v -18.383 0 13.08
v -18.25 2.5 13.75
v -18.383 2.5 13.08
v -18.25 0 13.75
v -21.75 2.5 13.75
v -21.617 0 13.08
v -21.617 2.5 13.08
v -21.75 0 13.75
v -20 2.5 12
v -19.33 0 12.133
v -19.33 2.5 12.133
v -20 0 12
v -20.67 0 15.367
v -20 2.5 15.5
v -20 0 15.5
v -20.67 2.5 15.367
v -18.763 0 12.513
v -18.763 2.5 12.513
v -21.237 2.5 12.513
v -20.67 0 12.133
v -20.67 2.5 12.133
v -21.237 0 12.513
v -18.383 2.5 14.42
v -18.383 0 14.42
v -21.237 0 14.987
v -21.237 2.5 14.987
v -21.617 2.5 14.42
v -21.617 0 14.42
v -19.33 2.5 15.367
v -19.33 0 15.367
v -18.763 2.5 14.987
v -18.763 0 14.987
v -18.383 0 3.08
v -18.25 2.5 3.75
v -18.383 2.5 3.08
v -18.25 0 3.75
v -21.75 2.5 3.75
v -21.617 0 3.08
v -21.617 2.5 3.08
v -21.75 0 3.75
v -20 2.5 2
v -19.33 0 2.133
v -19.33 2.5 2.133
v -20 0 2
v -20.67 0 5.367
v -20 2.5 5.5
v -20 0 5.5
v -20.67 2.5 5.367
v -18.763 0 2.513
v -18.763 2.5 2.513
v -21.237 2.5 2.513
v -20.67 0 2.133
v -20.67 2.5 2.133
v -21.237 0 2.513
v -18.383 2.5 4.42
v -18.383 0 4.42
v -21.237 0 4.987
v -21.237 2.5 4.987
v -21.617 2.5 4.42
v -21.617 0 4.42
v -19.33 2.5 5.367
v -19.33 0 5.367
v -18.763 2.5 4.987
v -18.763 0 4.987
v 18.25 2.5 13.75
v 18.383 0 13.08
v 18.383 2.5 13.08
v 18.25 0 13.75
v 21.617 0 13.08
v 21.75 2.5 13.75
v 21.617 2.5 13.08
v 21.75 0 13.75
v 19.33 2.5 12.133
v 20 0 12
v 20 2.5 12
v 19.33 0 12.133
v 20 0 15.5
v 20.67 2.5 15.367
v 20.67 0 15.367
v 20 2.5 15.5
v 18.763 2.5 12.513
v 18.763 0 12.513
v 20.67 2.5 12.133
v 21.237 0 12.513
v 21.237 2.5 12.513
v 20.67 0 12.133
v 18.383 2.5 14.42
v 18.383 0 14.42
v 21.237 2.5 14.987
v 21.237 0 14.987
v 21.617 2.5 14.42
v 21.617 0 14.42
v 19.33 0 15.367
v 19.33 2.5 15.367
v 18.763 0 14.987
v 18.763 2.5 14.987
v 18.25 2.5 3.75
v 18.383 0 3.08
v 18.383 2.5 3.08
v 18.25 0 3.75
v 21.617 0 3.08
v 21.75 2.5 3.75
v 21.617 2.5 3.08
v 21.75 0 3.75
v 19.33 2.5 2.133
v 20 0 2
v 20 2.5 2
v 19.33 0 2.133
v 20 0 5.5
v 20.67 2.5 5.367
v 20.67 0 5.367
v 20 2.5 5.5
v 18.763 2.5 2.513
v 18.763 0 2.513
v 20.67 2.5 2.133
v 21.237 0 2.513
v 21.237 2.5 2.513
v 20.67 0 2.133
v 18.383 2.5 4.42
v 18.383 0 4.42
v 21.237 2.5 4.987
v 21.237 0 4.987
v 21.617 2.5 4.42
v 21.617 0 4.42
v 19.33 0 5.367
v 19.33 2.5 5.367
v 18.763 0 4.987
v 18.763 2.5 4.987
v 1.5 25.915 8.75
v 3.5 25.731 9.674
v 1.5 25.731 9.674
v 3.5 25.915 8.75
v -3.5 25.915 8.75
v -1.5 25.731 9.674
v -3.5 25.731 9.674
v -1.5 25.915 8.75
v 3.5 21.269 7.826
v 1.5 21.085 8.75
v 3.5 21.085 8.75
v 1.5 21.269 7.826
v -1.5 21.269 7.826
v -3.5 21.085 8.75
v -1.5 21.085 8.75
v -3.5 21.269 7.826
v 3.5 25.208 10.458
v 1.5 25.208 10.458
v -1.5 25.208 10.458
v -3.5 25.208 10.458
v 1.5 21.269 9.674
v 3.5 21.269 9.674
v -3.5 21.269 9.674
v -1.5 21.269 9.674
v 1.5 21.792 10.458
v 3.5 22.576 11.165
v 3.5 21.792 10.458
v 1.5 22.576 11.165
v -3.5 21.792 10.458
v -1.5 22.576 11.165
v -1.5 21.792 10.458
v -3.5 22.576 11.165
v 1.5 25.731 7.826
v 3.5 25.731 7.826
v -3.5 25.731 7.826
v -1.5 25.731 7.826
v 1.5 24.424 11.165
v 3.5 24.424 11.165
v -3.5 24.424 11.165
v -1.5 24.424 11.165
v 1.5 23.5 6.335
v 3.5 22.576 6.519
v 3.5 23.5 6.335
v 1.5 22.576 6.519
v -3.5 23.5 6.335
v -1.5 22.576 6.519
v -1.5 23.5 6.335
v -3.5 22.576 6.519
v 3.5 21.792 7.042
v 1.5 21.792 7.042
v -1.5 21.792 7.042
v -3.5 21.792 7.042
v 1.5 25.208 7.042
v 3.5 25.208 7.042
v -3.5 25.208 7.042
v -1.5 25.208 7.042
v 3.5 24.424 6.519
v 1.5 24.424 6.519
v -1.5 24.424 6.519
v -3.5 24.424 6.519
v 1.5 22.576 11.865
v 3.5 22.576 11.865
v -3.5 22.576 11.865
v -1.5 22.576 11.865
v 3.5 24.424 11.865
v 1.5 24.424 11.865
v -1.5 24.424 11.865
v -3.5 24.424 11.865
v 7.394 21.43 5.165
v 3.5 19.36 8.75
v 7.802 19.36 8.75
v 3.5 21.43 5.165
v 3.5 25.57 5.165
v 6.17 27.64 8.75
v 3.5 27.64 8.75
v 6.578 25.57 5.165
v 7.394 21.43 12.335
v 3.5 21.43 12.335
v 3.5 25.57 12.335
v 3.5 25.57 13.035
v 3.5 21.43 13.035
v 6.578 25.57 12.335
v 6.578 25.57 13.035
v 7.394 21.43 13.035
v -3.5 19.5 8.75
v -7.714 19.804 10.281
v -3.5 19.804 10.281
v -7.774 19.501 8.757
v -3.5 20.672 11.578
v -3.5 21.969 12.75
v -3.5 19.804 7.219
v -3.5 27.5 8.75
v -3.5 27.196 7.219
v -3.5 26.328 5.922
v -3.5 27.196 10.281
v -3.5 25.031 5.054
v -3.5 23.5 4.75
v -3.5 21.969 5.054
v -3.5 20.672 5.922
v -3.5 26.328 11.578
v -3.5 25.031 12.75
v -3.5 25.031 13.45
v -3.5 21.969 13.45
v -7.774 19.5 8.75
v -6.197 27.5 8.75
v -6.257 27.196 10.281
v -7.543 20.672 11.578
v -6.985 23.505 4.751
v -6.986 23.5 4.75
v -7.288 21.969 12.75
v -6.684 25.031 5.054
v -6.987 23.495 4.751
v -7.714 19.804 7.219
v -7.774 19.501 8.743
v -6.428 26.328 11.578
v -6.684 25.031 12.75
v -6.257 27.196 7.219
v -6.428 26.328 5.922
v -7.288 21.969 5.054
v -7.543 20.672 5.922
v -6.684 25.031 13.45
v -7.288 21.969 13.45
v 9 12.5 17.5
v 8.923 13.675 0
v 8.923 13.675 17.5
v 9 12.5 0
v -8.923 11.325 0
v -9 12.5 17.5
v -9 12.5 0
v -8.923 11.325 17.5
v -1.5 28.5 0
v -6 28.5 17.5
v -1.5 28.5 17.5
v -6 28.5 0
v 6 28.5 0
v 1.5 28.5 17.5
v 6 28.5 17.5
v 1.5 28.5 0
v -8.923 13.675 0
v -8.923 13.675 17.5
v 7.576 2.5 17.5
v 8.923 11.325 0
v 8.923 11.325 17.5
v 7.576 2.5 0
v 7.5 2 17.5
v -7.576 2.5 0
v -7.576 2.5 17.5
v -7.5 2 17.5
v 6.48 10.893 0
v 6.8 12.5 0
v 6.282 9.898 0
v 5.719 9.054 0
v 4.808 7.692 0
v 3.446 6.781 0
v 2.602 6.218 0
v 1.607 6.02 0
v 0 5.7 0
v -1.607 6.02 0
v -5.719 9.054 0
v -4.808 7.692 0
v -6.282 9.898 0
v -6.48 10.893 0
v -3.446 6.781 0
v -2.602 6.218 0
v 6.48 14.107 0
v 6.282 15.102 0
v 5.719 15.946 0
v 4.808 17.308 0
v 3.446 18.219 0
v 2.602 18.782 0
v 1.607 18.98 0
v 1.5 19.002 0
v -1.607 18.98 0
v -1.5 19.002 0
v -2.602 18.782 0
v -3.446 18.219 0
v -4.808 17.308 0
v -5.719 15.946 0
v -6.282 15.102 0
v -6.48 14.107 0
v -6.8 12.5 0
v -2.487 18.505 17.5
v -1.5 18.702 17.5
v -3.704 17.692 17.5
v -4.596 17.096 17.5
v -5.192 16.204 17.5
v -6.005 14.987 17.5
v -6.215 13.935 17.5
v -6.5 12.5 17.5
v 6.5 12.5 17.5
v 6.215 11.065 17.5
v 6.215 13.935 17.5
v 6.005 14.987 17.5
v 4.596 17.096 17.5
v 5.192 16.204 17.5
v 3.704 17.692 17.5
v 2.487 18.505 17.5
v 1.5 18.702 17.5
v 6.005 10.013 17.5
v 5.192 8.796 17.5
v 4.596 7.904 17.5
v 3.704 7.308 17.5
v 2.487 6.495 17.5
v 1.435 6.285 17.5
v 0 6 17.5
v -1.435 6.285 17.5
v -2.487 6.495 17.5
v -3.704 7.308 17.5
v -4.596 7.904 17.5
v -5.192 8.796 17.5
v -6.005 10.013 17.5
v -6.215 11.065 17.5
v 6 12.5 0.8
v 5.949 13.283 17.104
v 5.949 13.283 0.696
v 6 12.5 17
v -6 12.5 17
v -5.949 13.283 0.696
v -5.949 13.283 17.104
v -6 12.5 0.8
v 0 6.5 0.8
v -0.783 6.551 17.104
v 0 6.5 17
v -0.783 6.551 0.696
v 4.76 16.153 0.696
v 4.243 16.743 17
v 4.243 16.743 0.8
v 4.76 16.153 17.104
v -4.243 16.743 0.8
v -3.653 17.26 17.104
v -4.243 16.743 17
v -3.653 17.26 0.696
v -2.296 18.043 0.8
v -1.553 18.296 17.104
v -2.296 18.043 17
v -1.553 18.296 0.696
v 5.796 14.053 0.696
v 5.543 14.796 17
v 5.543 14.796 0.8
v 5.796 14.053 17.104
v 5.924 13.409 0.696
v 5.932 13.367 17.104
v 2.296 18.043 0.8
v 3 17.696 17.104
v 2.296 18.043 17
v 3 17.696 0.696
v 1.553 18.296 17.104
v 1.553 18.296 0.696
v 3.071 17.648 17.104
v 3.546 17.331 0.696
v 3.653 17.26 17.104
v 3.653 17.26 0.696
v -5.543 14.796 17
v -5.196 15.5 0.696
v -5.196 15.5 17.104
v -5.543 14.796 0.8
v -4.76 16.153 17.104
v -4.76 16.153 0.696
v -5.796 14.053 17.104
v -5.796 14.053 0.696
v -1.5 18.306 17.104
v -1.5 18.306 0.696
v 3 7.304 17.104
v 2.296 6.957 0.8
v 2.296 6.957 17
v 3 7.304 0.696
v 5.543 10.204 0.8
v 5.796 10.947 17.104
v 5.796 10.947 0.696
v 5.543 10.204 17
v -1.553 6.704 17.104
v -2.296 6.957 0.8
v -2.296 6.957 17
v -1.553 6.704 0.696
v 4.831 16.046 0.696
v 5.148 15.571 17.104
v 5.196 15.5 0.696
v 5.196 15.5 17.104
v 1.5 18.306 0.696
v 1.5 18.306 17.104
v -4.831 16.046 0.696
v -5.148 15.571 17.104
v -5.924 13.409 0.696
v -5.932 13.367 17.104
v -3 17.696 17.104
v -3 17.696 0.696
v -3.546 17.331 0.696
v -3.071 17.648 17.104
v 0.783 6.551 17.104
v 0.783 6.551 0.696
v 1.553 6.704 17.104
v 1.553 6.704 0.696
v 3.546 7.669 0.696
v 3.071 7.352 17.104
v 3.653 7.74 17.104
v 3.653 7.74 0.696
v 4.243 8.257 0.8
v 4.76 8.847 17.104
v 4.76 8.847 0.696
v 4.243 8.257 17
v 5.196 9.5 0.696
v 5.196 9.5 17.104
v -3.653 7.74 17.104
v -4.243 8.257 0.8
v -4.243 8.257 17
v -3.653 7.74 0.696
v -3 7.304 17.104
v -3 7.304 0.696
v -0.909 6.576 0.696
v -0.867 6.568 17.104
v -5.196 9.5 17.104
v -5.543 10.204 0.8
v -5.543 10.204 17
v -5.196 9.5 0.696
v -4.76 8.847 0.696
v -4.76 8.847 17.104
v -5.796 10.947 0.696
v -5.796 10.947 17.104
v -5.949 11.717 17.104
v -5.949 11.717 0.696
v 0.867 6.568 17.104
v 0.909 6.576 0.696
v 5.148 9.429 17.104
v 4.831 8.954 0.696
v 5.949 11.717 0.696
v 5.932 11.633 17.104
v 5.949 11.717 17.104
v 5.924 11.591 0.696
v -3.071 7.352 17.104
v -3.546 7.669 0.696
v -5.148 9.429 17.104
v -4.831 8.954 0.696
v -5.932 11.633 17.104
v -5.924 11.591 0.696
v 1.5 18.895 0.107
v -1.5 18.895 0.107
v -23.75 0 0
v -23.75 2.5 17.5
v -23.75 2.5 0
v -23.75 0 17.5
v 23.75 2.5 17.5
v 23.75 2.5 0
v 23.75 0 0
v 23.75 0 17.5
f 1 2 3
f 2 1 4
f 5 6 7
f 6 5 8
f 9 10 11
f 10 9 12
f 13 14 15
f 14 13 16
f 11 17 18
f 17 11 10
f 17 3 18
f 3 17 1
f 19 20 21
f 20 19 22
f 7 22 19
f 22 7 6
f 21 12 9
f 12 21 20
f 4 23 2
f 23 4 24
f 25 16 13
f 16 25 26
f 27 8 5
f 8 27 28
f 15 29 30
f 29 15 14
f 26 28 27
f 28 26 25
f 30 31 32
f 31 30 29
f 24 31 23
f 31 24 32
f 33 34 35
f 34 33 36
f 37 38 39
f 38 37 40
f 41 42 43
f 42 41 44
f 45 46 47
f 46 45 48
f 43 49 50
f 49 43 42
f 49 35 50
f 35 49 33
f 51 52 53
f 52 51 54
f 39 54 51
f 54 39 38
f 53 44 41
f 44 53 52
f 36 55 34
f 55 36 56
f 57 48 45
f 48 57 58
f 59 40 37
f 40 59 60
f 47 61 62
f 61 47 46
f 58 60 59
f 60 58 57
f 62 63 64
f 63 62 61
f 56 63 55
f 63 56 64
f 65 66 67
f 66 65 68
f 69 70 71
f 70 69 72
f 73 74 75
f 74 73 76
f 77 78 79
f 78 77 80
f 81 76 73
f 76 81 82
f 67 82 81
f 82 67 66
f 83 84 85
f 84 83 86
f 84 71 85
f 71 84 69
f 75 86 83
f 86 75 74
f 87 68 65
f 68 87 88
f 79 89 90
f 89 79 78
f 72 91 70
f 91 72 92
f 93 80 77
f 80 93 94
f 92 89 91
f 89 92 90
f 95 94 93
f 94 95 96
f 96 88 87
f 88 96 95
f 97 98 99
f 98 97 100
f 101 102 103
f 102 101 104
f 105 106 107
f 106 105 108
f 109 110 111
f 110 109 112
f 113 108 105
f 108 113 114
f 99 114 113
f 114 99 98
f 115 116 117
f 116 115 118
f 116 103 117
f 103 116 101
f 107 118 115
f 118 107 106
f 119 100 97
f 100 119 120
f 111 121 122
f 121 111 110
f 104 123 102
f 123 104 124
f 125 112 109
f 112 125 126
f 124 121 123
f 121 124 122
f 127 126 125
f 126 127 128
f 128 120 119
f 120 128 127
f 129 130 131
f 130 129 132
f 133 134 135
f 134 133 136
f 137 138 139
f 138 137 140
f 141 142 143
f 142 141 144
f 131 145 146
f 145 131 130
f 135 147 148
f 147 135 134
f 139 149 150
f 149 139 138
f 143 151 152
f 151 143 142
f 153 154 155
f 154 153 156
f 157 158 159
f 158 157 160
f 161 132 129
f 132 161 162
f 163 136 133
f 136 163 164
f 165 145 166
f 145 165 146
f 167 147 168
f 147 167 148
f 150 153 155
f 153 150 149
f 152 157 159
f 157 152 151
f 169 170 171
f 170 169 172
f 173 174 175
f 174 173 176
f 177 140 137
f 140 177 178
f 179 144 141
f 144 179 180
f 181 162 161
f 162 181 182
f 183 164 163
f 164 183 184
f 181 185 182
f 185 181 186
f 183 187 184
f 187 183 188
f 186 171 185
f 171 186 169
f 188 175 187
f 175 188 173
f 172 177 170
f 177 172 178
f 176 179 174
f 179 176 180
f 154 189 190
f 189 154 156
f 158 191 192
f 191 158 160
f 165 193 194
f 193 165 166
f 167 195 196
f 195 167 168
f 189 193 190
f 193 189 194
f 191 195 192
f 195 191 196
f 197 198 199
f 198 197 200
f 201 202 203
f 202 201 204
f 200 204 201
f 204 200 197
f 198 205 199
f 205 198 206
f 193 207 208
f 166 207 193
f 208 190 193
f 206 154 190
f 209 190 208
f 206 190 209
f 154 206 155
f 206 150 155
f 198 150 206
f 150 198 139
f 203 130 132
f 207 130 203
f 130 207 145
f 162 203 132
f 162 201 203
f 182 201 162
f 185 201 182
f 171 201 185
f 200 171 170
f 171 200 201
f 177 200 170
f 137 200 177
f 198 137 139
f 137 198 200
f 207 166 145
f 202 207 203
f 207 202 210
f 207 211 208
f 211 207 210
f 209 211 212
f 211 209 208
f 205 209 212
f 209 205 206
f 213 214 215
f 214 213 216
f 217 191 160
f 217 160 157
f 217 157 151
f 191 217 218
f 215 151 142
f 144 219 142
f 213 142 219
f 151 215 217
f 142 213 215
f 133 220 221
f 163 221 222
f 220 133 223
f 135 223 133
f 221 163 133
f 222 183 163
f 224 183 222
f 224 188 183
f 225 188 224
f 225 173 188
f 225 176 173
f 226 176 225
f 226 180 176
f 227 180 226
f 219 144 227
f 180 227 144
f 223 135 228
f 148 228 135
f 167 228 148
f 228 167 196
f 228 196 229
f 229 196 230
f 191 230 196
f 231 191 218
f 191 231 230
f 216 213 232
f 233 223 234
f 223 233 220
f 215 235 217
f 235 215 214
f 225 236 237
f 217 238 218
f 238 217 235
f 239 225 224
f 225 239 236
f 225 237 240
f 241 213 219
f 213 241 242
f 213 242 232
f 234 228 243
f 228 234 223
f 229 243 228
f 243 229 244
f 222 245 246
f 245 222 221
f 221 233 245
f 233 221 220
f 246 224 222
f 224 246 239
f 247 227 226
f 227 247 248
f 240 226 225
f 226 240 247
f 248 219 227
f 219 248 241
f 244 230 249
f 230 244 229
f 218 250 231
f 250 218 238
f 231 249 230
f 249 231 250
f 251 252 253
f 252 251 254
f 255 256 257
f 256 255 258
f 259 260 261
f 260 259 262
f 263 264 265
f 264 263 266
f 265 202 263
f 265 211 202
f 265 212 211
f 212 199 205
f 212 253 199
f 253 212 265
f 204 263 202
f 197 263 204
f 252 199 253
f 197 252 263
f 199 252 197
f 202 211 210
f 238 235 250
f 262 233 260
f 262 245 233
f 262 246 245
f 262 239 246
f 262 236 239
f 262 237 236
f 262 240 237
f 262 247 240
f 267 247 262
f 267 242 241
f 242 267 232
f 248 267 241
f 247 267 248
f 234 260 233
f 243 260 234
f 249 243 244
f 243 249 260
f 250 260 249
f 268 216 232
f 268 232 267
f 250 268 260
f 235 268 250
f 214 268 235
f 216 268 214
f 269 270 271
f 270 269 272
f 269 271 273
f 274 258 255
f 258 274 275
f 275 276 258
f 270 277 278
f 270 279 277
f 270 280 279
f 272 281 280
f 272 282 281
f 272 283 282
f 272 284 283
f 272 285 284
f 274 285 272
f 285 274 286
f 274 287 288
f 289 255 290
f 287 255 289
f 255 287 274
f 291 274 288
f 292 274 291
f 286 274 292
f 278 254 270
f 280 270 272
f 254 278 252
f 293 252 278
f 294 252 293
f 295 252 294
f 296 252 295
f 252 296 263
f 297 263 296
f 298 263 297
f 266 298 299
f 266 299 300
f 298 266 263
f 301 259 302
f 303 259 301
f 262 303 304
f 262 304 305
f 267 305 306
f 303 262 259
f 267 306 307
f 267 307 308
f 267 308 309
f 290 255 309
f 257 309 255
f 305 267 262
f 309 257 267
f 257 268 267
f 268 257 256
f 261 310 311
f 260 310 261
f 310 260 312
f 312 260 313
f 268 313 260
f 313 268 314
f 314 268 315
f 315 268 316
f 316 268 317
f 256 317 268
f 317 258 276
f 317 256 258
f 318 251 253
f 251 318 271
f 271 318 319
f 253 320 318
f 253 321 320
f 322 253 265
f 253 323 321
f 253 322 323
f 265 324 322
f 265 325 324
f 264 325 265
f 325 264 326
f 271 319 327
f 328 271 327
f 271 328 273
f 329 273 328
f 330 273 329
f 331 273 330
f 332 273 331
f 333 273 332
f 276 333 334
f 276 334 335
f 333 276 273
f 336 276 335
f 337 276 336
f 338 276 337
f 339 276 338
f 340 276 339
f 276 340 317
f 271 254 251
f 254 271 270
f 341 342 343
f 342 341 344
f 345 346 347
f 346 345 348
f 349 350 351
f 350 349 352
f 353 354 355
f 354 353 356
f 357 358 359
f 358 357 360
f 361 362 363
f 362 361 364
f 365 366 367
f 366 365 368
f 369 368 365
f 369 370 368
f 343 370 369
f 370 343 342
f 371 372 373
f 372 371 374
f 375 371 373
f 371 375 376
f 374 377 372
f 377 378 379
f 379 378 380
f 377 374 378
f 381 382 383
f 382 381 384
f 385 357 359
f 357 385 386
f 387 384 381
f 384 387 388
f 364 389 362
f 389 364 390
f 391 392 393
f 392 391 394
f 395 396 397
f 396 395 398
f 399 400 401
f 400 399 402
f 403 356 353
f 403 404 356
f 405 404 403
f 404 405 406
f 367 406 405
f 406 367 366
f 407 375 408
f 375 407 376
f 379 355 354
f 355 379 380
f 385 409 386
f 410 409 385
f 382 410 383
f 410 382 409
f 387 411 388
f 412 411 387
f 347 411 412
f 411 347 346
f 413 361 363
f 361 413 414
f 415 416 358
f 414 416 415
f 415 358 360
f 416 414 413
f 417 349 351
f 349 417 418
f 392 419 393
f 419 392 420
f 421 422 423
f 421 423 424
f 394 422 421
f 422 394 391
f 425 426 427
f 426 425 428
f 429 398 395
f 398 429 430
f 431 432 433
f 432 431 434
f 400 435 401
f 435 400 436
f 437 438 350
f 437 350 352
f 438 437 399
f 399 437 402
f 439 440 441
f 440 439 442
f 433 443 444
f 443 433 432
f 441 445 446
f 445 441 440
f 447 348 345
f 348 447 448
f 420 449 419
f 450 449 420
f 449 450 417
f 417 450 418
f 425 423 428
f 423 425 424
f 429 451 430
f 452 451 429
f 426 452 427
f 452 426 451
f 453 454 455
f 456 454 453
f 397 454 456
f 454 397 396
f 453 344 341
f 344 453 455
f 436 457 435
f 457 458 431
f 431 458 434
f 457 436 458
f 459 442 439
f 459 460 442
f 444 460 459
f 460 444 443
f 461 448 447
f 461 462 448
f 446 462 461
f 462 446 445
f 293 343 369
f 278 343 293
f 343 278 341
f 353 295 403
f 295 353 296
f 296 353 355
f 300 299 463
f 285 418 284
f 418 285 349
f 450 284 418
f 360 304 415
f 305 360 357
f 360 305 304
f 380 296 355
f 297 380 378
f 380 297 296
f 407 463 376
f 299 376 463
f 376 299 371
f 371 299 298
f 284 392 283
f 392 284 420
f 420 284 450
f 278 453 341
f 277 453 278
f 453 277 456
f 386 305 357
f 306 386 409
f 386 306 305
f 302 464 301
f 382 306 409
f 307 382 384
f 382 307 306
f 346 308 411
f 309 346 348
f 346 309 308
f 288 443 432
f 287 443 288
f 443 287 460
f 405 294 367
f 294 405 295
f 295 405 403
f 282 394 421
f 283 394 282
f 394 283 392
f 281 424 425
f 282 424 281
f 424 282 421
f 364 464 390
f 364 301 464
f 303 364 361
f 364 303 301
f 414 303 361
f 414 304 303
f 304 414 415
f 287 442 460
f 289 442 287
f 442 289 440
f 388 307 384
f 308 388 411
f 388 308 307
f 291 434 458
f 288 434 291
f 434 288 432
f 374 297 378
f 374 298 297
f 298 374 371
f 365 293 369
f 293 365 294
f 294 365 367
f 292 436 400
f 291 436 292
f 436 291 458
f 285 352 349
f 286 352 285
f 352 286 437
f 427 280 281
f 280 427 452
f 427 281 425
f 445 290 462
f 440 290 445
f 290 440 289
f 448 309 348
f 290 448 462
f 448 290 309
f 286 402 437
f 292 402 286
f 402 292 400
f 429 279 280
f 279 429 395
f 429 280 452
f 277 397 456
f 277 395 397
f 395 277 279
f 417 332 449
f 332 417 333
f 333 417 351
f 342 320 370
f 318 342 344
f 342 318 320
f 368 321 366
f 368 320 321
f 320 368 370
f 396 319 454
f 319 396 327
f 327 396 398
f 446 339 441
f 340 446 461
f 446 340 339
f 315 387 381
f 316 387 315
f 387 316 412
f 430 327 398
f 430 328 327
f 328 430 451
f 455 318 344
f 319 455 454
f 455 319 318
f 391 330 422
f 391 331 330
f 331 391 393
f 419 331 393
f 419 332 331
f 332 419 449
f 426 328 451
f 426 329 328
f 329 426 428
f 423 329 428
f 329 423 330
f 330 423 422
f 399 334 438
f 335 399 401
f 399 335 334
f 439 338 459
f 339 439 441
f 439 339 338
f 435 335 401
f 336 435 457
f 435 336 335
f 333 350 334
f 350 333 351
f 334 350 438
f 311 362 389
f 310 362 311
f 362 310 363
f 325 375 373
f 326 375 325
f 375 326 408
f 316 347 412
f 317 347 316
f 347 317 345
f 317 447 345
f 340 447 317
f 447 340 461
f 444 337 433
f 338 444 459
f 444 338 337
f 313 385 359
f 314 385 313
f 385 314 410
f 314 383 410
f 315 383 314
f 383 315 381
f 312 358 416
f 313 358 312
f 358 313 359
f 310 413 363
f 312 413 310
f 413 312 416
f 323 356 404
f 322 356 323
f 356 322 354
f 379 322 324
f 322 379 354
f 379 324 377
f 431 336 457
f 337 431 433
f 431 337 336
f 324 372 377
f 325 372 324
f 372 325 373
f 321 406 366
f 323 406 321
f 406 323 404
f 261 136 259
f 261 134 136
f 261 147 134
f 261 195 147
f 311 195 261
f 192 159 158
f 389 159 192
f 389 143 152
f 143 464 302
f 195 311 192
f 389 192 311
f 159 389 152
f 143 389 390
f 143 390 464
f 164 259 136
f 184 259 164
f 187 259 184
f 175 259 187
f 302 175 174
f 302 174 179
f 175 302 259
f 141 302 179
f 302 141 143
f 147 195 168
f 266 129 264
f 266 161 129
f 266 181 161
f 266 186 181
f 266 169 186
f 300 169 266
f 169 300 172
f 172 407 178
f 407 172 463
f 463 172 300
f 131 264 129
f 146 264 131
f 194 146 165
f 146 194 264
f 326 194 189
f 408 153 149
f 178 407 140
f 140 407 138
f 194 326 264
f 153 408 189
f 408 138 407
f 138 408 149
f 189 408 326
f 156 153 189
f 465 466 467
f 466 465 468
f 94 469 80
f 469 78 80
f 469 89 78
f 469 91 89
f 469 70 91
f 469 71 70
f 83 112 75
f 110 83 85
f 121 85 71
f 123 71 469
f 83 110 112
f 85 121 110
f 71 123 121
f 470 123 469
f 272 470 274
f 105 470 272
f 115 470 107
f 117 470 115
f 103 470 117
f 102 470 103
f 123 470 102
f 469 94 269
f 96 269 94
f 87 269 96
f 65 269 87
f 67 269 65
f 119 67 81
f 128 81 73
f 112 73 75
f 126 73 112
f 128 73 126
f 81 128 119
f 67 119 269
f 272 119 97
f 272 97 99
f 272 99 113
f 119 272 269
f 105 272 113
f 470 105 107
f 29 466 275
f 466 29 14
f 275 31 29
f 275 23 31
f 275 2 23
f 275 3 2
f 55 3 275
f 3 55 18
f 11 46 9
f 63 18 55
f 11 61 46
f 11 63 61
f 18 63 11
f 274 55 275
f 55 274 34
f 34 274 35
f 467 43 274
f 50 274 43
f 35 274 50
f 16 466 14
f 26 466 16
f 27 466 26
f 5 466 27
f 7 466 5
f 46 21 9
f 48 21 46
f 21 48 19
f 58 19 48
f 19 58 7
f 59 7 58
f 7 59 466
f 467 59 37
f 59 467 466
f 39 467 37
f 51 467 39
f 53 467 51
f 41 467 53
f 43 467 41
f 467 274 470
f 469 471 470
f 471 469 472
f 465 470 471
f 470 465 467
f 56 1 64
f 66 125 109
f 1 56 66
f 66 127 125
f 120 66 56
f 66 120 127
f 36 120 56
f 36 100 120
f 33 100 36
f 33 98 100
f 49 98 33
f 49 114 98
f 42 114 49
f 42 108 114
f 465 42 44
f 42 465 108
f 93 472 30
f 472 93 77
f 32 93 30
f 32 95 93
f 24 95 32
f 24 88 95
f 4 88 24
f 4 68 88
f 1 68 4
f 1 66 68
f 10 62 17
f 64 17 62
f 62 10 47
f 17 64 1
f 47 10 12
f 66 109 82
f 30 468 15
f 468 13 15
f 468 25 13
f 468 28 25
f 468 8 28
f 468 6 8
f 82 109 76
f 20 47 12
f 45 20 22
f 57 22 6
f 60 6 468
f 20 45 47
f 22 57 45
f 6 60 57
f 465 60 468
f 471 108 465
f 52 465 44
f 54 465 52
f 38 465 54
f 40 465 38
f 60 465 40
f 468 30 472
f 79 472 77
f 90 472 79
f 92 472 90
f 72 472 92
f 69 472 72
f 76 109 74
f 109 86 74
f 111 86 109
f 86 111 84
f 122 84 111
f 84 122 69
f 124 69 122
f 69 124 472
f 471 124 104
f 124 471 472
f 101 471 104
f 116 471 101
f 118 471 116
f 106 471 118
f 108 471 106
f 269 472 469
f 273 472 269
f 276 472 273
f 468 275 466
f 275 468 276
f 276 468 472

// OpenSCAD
// file: cylinder_clamp.scad
use <../utilities.scad>;
d=0.05;

//for 1 inch/25mm post clamp, an inner radius of 12.8 is good.
	
module cylinder_clamp(
	inner_r=12.8, //radius of the cylinder being clamped (ish!)
	clamp_h=11, //thicknedess of the clamp along the cylinder axis
	clamp_t=4, //thickness of the clamp radially
	flat_t=8, //how thick the bottom of the clamp is (often need to allow for the mounting bolt head here)
	flat_width=15, //width of the flat base
	mounting_bolt=4, //nominal size of mounting bolt (default is 4 for M4, 0 to disable)
	nut_trap=false,
	bevel_top=0.5, //size of 45 degree bevel on top surface
	bevel_bottom=0.8 //size of 45 degree bevel on bottom of hole
	){
	assign(
		post_r = inner_r, //poor initial choice of name!
		bolt_flat_w=10, //width of the region where the bolt is
		gap_w=3 //size of the gap that is squeezed by the bolt
	)
	difference(){
		hull(){
			cylinder(h=clamp_h,r=post_r+clamp_t,center=true,$fn=48);
			translate([0,-post_r-flat_t/2,0]) cube([flat_width,flat_t,clamp_h],center=true);
			translate([0,post_r+bolt_flat_w/2,0]) cube([12,bolt_flat_w,clamp_h],center=true);
		}
	
		cylinder(h=9999,r=post_r,center=true,$fn=48); //cylinder being clamped
		//bevels, top and bottom
		translate([0,0,-clamp_h/2]) cylinder(r1=post_r+3*bevel_bottom,r2=post_r-bevel_bottom,h=4*bevel_bottom,center=true);
		translate([0,0,clamp_h/2]) cylinder(r2=post_r+3*bevel_top,r1=post_r-bevel_top,h=4*bevel_top,center=true);
		//gap (squeezed by bolt)
		translate([0,999,0]) cube([gap_w,999*2,999],center=true); //gap
	
		//clamping bolt
		translate([gap_w/2+2,post_r+bolt_flat_w/2,0]) rotate([0,0,-90]) nut_y(4,h=999,shaft=true);
		translate([-gap_w/2-2,post_r+bolt_flat_w/2,0]) rotate([0,0,90]) cylinder_with_45deg_top(r=4,h=999,$fn=16); //counterbore for nut head
	
		if(mounting_bolt > 0){
			//mounting bolt
			translate([0,-post_r-4.5,0]) rotate([-90,0,0]){
				intersection(){
					rotate([90,0,0])
						if(nut_trap){
							nut_y(mounting_bolt,fudge=1.15,shaft=true,h=999);
						}else{
							screw_y(mounting_bolt,fudge=1.07,shaft=true,h=999);
						}
					cube([inner_r*2,inner_r*2,clamp_h*2],center=true);
				}
			}
		}
		//in the case of thick clamps with thin flats, this keeps the bottom flat
		translate([0,-inner_r-flat_t-999,0]) cube([9999,999*2,9999],center=true);
	}
}

module cylinder_clamp_v(
	inner_r=12.8, //radius of the cylinder being clamped (ish!)
	clamp_h=10, //width of the clamp along the cylinder (y) axis
	clamp_t=4, //thickness of the clamp radially
	flat_t=8, //how thick the bottom of the clamp is (often need to allow for the mounting bolt head here)
	flat_width=15, //width of the flat base
	mounting_bolt=4, //nominal size of mounting bolt (default is 4 for M4, 0 to disable)
	bevel=0.5 //put a 45 degree bevel on the edges of the hole
	){
	assign(
		post_r = inner_r, //poor initial choice of name!
		bolt_flat_w=11, //width of the region where the bolt is
		gap_w=2*inner_r*sin(45/2),//sin(acos(1-(9/2-4/2*1.22)/inner_r))*inner_r //size of the gap that is squeezed by the bolt
		bolt_z = inner_r+4/2*1.22+d //position of bolt (so bolt just clears the cylinder we're clamping
	)assign( //the second assign statement allows us to use gap_w
		bolt_span=gap_w+4+d//max(2*inner_r*sin(acos(1-(9/2-4/2*1.22)/inner_r)), gap_w+4)
	)
	difference(){
		hull(){
			rotate([90,0,0]) cylinder(h=clamp_h,r=inner_r+clamp_t,center=true,$fn=48);
			translate([0,0,-inner_r-flat_t/2]) cube([flat_width,clamp_h,flat_t],center=true);
			translate([0,0,bolt_z]) cube([gap_w+9,clamp_h,bolt_flat_w],center=true);
		}
	
		cylinder_with_45deg_top(h=9999,r=post_r,center=true,$fn=48); //cylinder being clamped
		reflect([0,1,0]) translate([0,clamp_h/2,0]) rotate([90,0,0]) cylinder(r1=post_r+3*bevel,r2=post_r-bevel,h=4*bevel,center=true); //bevel
		translate([0,0,999]) cube([gap_w,999,999*2],center=true); //gap
	
		//clamping bolt
		translate([bolt_span/2,0,bolt_z]) rotate([0,0,-90]) nut_y(4,h=999,shaft=true);
		translate([-bolt_span/2,0,bolt_z]) rotate([0,0,90]) cylinder_with_45deg_top(r=4,h=999,$fn=16); //counterbore for nut head
	
		if(mounting_bolt > 0){
			//mounting bolt
			translate([0,0,-post_r-4.5]){
				cylinder(r=mounting_bolt*1.1,h=post_r,$fn=16);
				cylinder(r=mounting_bolt/2*1.22,h=flat_t*2,center=true,$fn=16);
			}
		}
		translate([0,0,-inner_r-flat_t-999]) cube([9999,9999,999*2],center=true);
	}
}

translate([0,30,0]) cylinder_clamp_v(30.5/2, 10, flat_width=24, mounting_bolt=4, flat_t=8);

cylinder_clamp(30.5/2, flat_width=24, mounting_bolt=4, flat_t=8,nut_trap=true);
// main file
/*

An adapter to fit an 11mm diameter laser diode module to the stage

(c) 2018 Richard Bowman - released under CERN Open Hardware License

*/

use <utilities.scad>;
use <cylinder_clamp.scad>;

hole_sep = 40;
hole_d = 3.5;
beam_h = 12.7;
d = 0.05;

w = hole_sep + hole_d + 4;
t = hole_d+4+10;
$fn=16;

rotate([-90,0,0]) translate([0,-t,0]) difference(){
    union(){
        translate([-w/2,0,0]) cube([w,t,2.5]); //mounts to two holes
        //translate([-10/2,0,0]) cube([15,t,]);
        translate([0,t/2,12.5]) rotate([90,0,0]) 
            cylinder_clamp(inner_r=11/2+0.5,
                           clamp_h=t,
                           clamp_t=3,
                           flat_t=10-11/2,
                           flat_width=15,
                           mounting_bolt=0);
    }
    
    reflect([1,0,0]) repeat([0,10,0],2) translate([-hole_sep/2,hole_d/2+2,3]){
        cylinder(d=hole_d,h=999, center=true);
        cylinder(d=4,h=999);
    }
    translate([0,-99,beam_h]) rotate([-90,0,0]) cylinder(d=3.3, h=999);

}
